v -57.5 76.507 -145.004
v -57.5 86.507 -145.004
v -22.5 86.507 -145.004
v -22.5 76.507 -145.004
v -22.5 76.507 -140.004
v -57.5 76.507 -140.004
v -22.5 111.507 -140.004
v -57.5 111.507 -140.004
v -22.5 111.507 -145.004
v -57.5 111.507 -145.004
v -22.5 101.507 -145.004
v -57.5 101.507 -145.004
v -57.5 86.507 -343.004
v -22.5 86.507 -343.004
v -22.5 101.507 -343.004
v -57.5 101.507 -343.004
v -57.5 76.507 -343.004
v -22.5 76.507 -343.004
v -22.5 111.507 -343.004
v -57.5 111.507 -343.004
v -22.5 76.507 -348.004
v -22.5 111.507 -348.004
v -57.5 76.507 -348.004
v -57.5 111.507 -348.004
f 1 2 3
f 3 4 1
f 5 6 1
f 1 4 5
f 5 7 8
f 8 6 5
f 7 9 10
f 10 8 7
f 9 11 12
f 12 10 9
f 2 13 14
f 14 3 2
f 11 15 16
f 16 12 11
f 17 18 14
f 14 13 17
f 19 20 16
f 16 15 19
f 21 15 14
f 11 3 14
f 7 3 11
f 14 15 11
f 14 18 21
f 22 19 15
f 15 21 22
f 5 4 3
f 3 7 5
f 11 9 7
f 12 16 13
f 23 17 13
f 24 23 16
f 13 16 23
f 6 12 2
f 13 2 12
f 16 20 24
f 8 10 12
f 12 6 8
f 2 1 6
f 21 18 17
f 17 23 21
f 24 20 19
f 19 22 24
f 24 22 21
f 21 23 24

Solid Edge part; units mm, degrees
sketch "Sketch1" plane through (0, 0, -145.0039) normal (0, 0, 1) x (1, 0, 0)
  line L0 (-22.5, 111.5073) -> (-22.5, 76.5073)
  line L1 (-22.5, 76.5073) -> (-57.5, 76.5073)
  line L2 (-57.5, 76.5073) -> (-57.5, 111.5073)
  line L3 (-57.5, 111.5073) -> (-22.5, 111.5073)
extrude "Protrusion1" add sketch "Sketch1" along normal blind 5
sketch "Sketch2" plane through (-40, 94.0073, -145.0039) normal (0, 0, -1) x (0, 1, 0)
  line L0 (-7.5, -17.5) -> (7.5, -17.5)
  line L1 (7.5, -17.5) -> (7.5, 17.5)
  line L2 (7.5, 17.5) -> (-7.5, 17.5)
  line L3 (-7.5, 17.5) -> (-7.5, -17.5)
extrude "Protrusion2" add sketch "Sketch2" along normal up to vertex (198 mm away)
sketch "Sketch3" plane through (-40, 94.0073, -343.0039) normal (0, 0, -1) x (0, 1, 0)
  line L0 (-17.5, 17.5) -> (-17.5, -17.5)
  line L1 (-17.5, -17.5) -> (17.5, -17.5)
  line L2 (17.5, -17.5) -> (17.5, 17.5)
  line L3 (17.5, 17.5) -> (-17.5, 17.5)
extrude "ExtrudedProtrusion_3" add sketch "Sketch3" along normal blind 5
